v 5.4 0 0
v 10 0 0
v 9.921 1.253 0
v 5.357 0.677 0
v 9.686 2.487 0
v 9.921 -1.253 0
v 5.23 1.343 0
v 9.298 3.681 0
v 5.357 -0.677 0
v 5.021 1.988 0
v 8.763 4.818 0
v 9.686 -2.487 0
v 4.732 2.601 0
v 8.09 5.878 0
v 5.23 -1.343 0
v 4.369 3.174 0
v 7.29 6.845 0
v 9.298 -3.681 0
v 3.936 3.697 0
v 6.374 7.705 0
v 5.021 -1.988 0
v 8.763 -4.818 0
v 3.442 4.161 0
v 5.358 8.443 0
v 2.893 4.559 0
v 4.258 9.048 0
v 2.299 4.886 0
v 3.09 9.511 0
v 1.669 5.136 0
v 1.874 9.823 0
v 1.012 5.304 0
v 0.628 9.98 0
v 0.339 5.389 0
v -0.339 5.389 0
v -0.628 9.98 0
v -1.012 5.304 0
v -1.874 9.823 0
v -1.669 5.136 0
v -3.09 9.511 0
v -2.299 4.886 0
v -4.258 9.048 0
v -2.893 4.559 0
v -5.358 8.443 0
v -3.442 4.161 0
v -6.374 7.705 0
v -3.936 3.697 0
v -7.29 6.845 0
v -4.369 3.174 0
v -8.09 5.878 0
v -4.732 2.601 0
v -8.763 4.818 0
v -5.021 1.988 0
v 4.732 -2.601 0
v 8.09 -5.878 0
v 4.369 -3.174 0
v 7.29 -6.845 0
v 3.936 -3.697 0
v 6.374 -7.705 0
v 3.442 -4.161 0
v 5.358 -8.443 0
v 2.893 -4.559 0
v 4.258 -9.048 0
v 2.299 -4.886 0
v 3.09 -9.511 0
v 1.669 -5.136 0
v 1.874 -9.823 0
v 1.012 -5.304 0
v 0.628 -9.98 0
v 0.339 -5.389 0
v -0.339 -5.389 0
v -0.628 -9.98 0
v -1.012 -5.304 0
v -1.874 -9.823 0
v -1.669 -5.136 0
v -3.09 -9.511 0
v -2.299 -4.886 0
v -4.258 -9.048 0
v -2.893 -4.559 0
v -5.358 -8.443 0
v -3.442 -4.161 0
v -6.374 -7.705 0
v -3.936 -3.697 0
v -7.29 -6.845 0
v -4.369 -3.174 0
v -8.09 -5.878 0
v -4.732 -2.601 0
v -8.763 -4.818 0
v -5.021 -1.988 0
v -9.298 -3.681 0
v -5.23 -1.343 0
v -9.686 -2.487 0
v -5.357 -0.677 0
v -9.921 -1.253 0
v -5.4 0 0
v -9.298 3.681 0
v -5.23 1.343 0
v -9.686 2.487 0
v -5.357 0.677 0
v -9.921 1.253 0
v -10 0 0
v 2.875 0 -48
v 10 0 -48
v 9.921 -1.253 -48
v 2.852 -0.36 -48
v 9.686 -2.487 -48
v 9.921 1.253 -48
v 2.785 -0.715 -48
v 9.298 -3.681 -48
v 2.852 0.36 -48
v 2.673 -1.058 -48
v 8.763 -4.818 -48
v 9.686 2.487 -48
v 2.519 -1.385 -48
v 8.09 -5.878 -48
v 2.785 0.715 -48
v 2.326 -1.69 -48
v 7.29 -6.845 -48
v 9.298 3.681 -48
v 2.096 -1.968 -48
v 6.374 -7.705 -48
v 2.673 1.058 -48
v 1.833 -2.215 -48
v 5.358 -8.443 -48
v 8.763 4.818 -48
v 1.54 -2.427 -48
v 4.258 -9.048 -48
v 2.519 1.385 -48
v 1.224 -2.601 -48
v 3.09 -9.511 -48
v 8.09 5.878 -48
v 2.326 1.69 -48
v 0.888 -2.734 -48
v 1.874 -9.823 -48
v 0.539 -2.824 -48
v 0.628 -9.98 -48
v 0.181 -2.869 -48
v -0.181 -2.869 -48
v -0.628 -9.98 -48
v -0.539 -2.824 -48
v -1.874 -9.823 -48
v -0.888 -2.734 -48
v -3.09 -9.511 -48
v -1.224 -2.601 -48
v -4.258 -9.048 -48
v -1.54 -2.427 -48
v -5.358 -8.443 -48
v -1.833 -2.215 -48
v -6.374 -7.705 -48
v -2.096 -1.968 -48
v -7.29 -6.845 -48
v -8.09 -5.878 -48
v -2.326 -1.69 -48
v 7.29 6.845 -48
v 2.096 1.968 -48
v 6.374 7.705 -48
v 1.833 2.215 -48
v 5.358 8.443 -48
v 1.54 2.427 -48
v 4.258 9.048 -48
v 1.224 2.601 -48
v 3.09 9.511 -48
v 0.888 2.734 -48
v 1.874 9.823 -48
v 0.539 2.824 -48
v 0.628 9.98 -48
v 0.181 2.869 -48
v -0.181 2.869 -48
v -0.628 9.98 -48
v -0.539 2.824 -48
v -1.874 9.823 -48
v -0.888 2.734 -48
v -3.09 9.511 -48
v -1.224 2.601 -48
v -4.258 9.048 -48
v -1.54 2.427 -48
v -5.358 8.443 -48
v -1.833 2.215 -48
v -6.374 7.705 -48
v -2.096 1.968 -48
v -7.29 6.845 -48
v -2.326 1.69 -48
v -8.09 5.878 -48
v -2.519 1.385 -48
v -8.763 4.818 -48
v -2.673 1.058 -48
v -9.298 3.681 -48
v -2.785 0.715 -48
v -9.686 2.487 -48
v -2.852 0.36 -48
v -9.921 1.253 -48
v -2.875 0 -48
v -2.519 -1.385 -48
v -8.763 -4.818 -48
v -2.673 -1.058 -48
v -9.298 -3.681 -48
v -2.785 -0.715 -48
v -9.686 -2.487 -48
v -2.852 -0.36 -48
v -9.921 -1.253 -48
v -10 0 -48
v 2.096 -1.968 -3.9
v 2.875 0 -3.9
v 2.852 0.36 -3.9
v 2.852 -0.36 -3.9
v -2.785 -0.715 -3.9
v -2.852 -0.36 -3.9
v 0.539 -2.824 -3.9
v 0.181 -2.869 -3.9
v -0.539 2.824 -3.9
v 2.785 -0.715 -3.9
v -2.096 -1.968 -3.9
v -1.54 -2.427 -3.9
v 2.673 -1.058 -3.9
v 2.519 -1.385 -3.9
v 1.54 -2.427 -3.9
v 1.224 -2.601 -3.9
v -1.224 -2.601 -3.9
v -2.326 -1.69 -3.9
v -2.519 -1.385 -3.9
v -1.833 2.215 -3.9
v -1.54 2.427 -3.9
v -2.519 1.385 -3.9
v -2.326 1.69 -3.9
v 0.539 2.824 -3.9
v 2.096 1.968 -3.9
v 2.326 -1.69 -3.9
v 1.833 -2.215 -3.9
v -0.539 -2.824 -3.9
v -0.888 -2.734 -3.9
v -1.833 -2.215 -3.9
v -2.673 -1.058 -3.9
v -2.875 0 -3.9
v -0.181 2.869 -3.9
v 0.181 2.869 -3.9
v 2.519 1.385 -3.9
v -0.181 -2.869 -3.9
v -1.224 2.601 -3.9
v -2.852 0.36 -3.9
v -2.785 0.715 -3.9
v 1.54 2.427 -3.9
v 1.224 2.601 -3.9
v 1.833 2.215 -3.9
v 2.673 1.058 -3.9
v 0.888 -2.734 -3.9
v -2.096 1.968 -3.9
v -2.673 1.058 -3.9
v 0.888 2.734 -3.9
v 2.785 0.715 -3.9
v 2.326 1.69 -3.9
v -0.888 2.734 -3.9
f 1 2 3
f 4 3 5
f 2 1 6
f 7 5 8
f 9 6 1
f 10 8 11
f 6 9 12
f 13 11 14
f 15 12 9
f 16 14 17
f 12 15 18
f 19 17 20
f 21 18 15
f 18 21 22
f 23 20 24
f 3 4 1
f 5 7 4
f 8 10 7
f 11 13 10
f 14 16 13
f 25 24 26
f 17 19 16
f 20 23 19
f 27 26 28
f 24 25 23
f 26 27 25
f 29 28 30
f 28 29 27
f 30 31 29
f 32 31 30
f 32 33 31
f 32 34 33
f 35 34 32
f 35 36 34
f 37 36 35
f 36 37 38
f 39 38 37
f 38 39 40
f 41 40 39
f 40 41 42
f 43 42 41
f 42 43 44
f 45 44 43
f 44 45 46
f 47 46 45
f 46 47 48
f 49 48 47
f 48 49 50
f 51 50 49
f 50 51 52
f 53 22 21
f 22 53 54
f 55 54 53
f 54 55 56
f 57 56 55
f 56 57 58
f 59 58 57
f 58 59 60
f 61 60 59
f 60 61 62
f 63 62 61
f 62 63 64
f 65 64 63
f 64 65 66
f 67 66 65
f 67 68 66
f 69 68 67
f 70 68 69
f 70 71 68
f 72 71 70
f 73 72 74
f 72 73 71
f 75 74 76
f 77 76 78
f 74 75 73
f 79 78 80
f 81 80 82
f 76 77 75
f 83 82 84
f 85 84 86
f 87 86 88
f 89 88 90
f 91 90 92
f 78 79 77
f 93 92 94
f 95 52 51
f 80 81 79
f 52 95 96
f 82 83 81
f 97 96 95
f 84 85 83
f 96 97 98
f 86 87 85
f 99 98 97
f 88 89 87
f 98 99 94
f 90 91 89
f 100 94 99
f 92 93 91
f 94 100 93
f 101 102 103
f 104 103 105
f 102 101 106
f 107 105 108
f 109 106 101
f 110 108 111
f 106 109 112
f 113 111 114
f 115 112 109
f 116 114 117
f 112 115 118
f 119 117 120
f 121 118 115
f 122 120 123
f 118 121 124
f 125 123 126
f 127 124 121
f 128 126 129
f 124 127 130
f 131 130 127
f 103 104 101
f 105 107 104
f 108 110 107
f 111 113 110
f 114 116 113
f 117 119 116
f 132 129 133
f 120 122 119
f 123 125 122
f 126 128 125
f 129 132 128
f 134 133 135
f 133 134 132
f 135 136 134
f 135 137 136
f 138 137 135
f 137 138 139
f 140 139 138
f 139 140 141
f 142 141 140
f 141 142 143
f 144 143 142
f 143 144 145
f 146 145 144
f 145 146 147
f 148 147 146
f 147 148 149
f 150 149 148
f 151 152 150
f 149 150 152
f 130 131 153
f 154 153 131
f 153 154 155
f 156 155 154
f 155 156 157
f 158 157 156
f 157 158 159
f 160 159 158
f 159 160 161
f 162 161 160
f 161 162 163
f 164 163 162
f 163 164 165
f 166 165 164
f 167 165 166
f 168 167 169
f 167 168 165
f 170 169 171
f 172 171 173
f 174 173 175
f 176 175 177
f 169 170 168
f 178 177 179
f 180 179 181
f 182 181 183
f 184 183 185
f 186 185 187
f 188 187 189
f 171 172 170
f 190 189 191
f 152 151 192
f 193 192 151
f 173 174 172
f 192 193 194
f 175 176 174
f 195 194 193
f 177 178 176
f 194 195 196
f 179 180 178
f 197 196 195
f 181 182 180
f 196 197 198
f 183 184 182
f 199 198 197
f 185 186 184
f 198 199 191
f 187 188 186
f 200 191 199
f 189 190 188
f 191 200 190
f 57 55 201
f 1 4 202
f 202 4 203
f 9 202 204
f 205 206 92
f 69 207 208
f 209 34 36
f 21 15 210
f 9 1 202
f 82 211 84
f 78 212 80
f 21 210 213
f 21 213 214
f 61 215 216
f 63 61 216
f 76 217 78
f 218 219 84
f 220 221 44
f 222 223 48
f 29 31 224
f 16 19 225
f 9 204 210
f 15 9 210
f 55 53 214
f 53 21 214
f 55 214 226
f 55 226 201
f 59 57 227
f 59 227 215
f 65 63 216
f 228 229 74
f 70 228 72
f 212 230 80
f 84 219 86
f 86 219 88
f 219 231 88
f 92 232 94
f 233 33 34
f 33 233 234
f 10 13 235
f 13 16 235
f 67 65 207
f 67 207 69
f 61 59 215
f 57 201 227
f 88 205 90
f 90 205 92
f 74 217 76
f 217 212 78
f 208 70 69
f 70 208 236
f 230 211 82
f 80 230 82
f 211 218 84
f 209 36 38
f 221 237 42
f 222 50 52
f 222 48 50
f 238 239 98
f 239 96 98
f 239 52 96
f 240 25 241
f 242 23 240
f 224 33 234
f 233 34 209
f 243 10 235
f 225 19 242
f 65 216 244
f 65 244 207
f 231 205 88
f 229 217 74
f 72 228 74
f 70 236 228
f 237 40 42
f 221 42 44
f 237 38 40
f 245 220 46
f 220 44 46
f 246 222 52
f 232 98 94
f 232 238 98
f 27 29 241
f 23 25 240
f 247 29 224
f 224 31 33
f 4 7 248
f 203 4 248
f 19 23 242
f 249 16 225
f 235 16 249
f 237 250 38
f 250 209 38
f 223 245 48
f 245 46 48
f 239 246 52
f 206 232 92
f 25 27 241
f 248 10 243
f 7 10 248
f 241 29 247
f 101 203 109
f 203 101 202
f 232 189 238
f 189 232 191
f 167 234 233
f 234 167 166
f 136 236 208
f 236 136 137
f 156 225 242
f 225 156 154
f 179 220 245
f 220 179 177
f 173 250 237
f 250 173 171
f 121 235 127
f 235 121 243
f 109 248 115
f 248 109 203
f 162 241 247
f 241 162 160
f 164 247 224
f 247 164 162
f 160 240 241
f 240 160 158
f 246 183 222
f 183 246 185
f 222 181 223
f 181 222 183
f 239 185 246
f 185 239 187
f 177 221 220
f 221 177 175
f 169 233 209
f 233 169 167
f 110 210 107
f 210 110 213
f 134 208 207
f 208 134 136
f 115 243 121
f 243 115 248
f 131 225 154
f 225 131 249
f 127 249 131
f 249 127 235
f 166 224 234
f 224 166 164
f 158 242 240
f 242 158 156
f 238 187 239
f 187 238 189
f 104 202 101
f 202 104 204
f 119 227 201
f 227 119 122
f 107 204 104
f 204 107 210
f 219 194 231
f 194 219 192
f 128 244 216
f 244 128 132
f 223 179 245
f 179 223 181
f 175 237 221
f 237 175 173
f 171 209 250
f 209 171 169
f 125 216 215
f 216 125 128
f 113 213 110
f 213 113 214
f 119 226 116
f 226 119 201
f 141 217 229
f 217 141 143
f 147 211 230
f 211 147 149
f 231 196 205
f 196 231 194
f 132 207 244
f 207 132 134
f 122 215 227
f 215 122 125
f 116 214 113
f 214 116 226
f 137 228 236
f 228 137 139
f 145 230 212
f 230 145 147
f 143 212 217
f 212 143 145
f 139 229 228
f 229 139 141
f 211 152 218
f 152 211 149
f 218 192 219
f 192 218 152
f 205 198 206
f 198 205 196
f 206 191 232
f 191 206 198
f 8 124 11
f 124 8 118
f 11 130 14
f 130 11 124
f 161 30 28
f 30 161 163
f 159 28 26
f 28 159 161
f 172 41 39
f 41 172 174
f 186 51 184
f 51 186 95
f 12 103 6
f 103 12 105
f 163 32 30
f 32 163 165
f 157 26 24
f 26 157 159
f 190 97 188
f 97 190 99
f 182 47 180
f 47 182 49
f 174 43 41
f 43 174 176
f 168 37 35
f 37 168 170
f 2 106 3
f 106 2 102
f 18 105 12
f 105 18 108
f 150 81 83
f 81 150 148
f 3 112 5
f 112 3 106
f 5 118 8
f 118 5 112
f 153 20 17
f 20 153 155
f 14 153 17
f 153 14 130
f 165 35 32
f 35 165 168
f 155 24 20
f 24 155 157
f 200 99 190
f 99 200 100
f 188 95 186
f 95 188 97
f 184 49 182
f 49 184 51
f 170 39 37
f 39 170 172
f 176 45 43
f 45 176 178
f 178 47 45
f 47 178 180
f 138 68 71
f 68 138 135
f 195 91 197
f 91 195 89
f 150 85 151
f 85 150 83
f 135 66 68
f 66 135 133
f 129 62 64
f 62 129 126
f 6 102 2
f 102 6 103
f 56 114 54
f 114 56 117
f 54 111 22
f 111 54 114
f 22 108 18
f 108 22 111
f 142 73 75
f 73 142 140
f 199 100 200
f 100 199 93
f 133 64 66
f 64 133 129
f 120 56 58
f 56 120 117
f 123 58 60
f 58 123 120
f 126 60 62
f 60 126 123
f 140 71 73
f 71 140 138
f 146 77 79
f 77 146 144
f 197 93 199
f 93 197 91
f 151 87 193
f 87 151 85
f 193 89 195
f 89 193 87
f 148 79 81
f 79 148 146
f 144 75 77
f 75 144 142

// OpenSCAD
$fn = 50;


difference() {
	union() {
		translate(v = [0, 0, -48.0000000000]) {
			cylinder(h = 48, r = 10.0000000000);
		}
	}
	union() {
		translate(v = [0, 0, 0]) {
			rotate(a = [0, 0, 0]) {
				difference() {
					union() {
						#translate(v = [0, 0, -48.0000000000]) {
							cylinder(h = 48, r = 2.6000000000);
						}
						#translate(v = [0, 0, -3.9000000000]) {
							cylinder(h = 3.9000000000, r1 = 2.8750000000, r2 = 5.4000000000);
						}
						#translate(v = [0, 0, -48.0000000000]) {
							cylinder(h = 48, r = 2.8750000000);
						}
						#translate(v = [0, 0, -48.0000000000]) {
							cylinder(h = 48, r = 2.6000000000);
						}
					}
					union();
				}
			}
		}
	}
}
